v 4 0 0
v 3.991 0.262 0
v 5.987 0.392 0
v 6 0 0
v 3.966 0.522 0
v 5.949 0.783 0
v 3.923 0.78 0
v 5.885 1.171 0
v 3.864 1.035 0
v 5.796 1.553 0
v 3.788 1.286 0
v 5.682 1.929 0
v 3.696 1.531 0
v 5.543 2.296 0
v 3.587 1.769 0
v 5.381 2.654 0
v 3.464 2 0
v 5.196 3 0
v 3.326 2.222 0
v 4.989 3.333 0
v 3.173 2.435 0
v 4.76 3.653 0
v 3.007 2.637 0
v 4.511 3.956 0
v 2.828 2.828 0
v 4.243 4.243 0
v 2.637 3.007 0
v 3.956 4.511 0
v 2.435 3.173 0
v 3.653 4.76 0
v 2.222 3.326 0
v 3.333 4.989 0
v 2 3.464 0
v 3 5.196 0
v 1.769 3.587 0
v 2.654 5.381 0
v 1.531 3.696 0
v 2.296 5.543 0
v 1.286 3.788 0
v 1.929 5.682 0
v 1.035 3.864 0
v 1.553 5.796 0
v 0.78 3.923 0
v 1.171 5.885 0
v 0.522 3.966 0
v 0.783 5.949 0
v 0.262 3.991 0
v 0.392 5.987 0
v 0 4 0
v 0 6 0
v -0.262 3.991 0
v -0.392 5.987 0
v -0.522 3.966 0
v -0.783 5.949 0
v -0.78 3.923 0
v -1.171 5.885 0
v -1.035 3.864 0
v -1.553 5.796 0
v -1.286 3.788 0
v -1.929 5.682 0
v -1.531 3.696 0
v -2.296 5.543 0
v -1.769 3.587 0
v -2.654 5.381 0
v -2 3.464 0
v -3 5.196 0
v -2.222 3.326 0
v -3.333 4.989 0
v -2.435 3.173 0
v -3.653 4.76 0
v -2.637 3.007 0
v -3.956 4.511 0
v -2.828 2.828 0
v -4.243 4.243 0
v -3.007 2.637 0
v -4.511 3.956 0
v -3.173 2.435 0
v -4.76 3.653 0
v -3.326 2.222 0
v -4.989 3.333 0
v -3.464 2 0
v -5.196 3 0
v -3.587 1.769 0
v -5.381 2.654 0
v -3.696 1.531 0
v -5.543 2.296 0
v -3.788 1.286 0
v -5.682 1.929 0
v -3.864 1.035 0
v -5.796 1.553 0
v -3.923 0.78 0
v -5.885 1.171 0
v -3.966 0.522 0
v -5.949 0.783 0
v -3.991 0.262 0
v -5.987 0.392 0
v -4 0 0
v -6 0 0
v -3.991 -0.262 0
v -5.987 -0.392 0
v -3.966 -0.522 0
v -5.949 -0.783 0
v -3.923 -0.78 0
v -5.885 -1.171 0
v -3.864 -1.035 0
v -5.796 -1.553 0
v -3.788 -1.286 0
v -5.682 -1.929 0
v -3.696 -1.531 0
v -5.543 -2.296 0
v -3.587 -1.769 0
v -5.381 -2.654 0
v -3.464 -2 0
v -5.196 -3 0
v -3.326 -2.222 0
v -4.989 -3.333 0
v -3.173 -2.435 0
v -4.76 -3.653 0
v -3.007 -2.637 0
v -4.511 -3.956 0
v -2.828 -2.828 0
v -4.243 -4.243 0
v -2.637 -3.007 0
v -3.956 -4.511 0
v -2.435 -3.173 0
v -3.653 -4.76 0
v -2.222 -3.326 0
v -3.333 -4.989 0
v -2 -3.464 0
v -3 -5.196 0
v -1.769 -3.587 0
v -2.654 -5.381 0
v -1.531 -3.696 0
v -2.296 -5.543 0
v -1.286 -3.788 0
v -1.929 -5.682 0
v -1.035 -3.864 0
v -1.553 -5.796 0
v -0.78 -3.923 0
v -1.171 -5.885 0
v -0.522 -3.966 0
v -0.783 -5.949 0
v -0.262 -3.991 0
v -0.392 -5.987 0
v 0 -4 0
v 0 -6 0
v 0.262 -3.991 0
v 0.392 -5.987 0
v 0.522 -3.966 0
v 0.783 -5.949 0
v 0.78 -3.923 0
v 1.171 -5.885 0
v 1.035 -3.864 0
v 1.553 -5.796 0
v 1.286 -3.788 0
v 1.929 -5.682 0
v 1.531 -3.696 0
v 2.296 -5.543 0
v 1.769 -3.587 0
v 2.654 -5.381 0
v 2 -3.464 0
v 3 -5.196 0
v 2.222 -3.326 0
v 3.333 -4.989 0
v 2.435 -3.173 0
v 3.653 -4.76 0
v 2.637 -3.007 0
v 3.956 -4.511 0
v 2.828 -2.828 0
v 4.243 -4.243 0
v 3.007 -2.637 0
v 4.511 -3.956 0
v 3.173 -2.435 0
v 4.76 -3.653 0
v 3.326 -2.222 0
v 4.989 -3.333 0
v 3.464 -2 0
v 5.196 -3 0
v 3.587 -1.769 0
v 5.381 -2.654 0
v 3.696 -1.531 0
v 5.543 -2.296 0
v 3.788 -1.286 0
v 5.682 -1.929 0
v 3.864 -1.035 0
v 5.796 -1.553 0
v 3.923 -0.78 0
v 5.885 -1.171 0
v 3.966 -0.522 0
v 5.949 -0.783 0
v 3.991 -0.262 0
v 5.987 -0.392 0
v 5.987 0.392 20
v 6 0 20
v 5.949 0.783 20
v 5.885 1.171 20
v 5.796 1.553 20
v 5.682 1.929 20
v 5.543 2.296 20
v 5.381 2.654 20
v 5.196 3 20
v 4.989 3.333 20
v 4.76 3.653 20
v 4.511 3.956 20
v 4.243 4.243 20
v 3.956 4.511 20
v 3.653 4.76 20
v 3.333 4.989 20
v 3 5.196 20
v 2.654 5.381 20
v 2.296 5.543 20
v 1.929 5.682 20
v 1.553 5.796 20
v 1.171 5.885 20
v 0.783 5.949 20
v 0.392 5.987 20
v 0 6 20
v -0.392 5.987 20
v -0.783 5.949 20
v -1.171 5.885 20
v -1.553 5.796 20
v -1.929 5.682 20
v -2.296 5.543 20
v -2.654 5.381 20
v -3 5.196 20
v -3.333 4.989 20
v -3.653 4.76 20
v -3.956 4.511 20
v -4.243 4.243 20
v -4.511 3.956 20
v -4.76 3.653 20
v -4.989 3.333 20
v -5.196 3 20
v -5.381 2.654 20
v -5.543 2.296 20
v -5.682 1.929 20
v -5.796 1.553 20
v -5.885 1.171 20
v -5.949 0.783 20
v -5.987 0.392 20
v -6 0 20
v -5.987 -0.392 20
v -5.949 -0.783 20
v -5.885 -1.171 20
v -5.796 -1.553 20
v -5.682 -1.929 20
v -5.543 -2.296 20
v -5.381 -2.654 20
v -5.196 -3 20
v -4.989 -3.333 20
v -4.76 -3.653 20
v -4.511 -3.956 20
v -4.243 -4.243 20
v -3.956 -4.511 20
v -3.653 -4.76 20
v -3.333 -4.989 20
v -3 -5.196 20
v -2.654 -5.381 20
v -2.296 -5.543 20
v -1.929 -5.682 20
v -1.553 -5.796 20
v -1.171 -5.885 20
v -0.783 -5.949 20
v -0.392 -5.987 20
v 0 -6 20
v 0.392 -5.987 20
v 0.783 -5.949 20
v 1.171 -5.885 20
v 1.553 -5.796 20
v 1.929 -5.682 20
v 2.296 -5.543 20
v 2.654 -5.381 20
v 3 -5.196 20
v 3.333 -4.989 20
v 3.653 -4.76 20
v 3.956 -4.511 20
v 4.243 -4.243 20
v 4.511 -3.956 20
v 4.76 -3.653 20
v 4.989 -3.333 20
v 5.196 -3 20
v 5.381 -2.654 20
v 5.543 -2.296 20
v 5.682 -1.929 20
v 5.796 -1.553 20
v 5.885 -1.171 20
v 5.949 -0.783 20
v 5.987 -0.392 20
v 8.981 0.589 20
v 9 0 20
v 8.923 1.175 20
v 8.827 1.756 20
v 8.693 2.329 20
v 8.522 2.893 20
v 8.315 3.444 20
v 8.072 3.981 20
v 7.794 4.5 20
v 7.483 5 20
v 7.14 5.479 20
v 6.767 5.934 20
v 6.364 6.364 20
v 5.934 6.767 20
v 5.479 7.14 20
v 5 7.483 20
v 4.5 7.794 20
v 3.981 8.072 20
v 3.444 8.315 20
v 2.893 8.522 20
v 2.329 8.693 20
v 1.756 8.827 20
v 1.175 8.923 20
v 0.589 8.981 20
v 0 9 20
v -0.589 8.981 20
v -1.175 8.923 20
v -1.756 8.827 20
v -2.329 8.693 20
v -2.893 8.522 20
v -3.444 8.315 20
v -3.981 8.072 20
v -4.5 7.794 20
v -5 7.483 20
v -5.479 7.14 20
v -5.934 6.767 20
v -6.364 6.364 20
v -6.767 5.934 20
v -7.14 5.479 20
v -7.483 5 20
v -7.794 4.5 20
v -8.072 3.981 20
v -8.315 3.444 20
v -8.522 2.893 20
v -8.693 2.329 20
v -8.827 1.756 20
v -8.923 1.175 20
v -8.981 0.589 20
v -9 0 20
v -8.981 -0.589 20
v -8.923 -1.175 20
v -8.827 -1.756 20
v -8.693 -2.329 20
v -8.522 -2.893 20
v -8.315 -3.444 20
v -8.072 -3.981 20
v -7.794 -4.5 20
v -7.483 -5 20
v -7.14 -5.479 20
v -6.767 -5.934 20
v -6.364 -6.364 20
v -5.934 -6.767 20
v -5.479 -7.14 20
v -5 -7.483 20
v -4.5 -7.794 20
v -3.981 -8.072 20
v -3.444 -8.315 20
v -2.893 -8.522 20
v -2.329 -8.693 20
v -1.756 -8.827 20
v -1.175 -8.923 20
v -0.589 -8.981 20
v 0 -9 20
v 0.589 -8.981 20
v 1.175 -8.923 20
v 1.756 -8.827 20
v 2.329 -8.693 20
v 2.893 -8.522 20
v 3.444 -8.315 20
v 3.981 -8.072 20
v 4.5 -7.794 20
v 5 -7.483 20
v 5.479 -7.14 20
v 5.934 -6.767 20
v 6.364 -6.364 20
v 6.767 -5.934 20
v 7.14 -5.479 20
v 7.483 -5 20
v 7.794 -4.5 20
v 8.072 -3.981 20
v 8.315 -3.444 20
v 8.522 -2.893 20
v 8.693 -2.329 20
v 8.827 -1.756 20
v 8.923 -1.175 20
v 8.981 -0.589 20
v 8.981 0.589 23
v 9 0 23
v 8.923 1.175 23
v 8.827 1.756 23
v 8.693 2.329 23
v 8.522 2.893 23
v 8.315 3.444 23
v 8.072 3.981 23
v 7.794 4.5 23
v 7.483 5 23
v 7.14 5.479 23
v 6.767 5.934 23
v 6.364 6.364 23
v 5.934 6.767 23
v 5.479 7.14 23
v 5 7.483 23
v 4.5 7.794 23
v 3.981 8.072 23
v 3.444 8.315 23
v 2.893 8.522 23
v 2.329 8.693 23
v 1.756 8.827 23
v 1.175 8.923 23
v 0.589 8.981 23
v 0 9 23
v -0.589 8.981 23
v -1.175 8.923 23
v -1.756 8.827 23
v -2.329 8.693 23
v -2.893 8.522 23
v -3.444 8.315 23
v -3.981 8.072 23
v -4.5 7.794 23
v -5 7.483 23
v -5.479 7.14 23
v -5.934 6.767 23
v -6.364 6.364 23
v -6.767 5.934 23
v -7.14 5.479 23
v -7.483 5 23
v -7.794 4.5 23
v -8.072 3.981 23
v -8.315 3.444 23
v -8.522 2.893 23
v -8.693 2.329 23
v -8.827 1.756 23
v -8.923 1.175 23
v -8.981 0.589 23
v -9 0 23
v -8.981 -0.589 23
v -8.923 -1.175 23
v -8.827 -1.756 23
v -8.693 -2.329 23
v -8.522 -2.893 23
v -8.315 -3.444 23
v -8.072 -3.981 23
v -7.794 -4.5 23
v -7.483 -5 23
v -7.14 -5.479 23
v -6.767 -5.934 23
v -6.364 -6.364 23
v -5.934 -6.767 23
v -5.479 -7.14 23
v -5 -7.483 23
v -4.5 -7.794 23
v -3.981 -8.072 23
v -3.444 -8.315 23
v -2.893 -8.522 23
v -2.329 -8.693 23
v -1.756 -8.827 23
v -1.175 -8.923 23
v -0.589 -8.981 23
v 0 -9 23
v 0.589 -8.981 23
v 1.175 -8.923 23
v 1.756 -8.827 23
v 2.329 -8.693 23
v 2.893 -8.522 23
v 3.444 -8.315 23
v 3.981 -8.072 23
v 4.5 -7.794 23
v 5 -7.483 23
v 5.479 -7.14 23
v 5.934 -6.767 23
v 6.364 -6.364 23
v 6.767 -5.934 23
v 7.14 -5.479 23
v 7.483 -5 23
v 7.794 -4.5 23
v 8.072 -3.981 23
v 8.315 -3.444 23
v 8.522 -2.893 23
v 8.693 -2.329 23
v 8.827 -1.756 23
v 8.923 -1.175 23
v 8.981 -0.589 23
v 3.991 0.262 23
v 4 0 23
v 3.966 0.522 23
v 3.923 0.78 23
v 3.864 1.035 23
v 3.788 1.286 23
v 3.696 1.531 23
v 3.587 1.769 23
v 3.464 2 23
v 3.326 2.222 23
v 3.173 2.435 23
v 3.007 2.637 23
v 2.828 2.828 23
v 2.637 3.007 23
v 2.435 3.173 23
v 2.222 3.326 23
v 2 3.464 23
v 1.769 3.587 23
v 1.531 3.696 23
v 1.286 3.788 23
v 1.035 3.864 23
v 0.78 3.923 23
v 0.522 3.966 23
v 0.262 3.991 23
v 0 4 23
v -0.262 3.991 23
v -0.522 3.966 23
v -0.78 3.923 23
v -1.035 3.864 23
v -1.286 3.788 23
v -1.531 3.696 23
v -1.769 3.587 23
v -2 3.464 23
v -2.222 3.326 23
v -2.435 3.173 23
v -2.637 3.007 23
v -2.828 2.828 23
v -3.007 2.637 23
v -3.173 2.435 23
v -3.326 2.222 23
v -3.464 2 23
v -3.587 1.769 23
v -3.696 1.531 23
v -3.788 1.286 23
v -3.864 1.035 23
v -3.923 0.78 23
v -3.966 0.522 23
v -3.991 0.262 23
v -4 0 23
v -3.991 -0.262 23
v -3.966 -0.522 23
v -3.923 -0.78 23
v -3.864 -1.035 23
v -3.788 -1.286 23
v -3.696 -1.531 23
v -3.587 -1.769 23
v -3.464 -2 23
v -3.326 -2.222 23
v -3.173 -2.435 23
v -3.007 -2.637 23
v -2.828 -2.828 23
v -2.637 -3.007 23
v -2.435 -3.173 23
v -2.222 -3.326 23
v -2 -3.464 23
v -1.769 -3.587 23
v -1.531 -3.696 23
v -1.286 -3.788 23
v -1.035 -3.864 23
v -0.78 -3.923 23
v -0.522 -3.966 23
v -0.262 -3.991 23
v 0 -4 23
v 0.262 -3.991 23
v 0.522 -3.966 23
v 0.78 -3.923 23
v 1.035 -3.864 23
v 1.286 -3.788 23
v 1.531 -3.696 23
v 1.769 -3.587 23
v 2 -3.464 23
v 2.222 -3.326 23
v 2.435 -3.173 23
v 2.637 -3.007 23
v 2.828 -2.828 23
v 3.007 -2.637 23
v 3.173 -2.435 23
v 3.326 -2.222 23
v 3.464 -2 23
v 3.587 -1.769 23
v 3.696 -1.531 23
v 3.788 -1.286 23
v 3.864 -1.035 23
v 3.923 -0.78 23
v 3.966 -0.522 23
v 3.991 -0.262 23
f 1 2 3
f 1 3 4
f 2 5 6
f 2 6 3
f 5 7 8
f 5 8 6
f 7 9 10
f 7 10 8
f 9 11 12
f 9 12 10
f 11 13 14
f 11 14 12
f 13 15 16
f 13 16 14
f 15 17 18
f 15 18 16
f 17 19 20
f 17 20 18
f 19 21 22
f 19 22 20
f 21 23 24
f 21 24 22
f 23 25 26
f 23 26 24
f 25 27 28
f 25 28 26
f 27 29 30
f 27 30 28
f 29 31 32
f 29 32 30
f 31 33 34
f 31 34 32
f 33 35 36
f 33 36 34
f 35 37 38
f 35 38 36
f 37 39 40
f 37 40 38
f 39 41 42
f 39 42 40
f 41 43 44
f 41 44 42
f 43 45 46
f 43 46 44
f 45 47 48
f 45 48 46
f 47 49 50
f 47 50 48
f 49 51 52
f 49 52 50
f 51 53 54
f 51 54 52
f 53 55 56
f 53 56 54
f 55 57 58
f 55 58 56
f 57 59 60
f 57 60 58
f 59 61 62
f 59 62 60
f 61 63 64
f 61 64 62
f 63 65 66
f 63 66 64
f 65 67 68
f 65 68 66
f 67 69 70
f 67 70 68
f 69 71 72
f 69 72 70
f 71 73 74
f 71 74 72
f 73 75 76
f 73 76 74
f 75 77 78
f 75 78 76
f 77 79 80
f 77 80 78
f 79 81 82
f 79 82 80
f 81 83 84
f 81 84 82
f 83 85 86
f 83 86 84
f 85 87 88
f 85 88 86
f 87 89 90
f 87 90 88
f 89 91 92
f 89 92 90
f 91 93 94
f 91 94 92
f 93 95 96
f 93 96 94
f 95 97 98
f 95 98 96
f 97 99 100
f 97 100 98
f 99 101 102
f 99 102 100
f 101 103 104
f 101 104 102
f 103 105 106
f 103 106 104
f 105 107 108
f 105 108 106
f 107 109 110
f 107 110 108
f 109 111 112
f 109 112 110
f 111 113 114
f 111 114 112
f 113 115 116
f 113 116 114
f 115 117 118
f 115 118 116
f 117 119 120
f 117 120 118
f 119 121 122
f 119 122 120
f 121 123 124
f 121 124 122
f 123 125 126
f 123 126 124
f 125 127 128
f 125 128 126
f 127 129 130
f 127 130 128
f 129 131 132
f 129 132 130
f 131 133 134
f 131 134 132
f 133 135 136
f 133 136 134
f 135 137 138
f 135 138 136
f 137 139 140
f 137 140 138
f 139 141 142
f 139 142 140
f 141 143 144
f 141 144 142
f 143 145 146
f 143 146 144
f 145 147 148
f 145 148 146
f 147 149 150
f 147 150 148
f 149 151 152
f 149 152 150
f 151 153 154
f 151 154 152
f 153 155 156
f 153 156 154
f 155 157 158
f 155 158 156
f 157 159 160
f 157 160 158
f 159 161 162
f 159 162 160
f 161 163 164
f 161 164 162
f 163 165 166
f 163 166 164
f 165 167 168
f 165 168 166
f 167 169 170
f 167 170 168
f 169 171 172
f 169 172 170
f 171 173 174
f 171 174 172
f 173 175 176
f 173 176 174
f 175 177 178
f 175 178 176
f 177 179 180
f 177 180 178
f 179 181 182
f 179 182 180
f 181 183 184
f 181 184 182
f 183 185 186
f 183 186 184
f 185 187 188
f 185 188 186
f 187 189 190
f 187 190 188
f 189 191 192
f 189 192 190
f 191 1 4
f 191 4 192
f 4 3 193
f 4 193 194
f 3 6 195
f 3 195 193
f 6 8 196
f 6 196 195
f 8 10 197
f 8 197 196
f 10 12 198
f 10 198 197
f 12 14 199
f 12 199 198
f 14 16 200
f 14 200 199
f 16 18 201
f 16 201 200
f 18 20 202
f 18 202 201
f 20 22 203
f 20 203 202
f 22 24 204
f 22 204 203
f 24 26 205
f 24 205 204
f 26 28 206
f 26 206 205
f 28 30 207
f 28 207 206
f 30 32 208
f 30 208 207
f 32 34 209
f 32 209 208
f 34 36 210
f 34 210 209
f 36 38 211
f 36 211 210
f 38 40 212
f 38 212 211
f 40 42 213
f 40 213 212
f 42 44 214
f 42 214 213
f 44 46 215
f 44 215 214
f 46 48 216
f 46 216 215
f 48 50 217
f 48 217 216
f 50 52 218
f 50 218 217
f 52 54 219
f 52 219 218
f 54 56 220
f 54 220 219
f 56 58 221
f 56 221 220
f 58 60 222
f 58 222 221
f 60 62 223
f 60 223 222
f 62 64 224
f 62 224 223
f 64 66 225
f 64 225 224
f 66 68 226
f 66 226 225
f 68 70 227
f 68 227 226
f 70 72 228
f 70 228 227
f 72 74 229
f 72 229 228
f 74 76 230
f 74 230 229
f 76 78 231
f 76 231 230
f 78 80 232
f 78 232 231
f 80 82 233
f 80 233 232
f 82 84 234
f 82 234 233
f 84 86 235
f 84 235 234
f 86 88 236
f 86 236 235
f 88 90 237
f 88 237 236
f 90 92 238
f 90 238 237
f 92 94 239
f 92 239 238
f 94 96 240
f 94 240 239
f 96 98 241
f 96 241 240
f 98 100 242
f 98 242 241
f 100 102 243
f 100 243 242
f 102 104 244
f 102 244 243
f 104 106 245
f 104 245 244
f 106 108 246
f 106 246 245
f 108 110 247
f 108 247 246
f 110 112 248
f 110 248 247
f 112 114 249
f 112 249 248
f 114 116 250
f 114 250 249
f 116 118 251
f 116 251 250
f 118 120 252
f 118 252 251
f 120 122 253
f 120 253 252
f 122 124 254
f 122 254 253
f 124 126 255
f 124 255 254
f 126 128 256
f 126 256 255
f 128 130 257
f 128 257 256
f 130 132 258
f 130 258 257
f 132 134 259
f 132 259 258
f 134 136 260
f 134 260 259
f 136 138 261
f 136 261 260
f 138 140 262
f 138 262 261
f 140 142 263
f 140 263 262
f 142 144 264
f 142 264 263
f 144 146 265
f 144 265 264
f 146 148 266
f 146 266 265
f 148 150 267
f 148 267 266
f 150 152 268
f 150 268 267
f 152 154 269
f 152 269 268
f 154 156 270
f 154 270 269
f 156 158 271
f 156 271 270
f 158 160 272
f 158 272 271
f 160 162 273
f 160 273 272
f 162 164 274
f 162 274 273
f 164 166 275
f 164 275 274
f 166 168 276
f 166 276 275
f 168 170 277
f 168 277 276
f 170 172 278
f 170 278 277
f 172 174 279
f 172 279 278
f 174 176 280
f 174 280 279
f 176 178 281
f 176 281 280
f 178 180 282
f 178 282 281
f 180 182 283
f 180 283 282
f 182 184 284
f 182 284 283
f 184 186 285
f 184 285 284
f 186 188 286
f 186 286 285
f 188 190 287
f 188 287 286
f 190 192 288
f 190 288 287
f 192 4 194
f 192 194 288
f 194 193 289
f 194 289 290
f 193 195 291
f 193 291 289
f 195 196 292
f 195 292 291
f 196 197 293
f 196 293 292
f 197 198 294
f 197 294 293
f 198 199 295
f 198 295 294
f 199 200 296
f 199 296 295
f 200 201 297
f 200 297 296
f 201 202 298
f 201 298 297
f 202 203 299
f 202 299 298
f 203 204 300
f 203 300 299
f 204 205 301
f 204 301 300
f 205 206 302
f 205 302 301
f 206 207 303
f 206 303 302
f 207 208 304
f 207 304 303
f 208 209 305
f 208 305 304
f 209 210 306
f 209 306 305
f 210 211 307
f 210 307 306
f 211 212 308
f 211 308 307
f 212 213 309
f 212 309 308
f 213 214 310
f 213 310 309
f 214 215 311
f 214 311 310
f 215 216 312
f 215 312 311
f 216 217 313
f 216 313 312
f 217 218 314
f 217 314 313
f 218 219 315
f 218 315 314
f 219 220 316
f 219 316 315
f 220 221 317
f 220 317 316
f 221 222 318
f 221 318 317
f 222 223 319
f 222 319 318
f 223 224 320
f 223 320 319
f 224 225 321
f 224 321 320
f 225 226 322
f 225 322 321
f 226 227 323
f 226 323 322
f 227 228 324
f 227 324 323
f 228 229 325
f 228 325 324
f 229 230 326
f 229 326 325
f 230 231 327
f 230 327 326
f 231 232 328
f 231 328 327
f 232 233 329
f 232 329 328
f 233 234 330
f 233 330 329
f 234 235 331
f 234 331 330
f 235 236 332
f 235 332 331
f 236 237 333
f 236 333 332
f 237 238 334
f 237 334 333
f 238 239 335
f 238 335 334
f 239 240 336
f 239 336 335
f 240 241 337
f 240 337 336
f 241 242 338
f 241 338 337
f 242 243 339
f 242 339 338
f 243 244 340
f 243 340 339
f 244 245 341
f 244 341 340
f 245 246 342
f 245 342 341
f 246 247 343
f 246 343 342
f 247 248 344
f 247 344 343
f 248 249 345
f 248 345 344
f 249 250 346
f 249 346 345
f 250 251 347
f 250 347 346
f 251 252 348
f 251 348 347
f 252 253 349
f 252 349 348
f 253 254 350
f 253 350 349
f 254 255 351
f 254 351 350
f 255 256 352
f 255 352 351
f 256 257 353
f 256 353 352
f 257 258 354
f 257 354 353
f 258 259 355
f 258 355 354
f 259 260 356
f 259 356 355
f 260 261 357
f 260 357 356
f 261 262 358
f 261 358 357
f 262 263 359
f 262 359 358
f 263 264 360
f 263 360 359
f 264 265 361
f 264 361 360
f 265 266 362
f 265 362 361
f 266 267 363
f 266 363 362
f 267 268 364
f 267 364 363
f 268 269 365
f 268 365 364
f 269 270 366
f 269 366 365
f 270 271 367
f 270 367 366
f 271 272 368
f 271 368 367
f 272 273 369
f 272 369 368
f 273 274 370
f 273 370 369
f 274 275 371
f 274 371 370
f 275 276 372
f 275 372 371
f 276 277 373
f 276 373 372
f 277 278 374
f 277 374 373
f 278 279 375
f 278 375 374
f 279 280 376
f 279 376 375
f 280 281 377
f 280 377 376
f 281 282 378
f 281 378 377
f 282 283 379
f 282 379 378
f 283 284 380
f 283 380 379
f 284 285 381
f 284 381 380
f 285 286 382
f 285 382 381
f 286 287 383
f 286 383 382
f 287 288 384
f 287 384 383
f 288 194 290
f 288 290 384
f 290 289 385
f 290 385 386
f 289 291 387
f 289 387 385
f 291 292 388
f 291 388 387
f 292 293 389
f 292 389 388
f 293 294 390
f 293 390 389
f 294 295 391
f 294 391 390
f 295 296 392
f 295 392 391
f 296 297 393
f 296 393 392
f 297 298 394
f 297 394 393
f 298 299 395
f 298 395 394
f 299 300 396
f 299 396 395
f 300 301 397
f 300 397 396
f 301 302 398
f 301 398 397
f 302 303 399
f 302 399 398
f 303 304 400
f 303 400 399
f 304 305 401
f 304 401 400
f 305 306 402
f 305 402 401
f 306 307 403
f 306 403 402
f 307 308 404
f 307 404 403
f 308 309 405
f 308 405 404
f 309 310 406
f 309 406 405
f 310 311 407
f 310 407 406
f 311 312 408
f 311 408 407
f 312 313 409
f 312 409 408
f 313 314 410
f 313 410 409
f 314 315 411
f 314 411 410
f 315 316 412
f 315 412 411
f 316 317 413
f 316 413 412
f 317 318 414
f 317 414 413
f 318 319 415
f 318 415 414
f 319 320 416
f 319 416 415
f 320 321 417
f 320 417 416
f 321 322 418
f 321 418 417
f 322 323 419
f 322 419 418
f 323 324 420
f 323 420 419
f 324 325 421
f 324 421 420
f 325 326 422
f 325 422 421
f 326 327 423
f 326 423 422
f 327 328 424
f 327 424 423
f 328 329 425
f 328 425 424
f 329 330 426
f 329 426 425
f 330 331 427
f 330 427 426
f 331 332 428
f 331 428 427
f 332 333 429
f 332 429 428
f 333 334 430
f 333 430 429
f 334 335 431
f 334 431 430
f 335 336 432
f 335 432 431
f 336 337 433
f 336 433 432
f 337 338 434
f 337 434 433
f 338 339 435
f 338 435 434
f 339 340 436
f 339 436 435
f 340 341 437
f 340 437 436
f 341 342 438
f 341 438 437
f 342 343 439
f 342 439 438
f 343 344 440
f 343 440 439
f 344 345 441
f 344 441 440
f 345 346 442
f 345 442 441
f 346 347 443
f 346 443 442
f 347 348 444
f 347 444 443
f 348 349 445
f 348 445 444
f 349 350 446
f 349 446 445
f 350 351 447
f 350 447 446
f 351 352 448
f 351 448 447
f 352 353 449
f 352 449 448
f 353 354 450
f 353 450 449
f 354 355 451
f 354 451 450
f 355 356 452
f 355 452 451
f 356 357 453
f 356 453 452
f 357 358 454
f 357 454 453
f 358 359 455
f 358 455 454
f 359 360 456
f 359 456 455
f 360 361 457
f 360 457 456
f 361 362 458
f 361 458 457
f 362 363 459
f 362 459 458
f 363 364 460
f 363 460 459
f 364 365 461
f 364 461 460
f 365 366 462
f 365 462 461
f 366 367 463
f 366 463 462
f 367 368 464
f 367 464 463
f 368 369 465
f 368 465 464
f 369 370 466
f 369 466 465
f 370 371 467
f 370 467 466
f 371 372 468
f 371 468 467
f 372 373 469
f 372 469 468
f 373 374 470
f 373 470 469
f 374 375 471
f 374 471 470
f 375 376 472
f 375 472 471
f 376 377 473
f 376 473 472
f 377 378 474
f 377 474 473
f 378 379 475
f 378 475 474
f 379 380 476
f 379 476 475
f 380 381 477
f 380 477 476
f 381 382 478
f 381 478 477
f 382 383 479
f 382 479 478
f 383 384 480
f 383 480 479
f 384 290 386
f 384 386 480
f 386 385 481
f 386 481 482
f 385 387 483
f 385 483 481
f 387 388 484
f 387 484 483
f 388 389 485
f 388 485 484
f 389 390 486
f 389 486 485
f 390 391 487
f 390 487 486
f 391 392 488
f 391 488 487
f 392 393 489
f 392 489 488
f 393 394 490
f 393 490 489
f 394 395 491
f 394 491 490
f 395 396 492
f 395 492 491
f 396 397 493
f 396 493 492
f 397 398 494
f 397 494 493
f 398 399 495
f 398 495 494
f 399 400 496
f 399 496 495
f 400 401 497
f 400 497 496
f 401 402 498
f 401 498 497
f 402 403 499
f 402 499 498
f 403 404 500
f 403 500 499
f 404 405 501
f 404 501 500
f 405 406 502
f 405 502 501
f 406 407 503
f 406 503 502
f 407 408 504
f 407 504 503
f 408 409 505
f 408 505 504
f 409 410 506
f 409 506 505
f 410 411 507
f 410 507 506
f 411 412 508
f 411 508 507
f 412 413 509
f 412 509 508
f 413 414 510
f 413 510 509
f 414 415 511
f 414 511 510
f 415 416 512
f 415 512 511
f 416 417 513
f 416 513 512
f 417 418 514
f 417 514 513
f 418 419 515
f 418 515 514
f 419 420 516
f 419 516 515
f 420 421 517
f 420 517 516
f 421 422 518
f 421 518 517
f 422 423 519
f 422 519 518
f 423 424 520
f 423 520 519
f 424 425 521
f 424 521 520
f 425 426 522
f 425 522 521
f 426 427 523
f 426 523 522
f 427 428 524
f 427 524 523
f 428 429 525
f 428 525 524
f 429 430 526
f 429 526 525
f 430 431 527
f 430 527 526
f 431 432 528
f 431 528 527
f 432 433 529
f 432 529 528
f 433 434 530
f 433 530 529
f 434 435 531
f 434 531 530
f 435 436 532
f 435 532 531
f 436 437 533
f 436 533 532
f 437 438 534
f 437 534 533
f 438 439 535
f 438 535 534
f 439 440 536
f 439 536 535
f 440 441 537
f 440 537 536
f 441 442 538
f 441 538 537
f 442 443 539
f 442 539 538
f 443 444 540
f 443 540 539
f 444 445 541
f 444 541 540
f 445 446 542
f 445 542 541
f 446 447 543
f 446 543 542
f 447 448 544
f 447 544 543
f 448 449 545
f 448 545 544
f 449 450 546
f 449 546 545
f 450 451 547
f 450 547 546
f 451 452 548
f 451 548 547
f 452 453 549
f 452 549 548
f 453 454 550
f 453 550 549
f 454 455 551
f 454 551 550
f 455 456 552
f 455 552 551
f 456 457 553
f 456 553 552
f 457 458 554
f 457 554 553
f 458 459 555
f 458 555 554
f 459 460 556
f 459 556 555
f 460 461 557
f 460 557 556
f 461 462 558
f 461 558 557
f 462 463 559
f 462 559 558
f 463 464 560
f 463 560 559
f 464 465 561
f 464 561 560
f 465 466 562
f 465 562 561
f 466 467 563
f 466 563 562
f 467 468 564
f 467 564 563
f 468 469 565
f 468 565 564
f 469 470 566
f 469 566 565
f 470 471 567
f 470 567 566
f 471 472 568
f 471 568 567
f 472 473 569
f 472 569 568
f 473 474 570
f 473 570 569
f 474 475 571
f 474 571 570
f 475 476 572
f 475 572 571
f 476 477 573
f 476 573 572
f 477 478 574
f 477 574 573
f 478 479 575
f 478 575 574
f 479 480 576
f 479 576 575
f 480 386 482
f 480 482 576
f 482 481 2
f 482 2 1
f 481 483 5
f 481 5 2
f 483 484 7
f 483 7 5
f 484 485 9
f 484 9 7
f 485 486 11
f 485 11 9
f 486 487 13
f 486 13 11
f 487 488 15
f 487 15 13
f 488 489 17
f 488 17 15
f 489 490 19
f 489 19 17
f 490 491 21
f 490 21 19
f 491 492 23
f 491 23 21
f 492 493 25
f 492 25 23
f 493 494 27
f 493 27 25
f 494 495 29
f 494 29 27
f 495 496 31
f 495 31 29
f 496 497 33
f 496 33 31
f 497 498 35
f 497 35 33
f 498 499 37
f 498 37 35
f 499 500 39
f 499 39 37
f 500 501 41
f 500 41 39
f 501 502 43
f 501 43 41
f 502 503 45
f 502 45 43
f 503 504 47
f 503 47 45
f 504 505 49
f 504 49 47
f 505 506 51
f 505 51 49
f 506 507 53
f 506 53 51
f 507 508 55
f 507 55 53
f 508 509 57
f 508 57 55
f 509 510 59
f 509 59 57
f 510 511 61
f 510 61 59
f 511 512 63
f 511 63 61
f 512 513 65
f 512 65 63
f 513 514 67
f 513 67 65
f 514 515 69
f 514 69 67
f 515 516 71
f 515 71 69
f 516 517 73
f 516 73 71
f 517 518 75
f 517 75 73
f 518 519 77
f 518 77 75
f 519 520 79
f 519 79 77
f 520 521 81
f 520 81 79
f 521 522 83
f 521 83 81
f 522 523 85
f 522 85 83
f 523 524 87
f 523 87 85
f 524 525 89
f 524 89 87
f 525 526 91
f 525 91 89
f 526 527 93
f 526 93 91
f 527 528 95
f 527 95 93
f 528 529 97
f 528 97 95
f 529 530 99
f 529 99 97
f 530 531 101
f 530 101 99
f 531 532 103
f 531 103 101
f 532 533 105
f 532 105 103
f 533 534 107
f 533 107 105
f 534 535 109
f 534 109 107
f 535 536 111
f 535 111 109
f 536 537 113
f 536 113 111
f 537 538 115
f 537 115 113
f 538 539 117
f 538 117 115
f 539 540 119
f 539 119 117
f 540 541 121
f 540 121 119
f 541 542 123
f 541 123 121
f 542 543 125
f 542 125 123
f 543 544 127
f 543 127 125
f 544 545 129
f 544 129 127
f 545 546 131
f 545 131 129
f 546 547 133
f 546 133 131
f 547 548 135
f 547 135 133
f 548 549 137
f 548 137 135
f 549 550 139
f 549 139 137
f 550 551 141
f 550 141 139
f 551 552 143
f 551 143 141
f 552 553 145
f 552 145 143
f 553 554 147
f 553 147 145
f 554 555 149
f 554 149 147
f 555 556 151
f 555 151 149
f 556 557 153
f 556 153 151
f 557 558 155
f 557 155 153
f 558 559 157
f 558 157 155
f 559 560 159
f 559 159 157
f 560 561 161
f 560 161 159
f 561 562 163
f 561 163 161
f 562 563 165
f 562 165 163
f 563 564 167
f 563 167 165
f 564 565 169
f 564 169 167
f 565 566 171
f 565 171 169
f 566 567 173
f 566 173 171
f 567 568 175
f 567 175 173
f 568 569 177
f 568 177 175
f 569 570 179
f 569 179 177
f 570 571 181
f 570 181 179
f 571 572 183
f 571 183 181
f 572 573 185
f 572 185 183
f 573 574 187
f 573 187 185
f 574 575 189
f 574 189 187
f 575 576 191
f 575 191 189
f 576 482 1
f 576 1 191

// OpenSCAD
// Original MechIntel educational model. CC0-1.0. Units: mm.
// Not a standardized or load-rated component.
$fn=96;
// Section points: [radius, height], mm. Edit to change the profile.
section=[[4, 0], [6, 0], [6, 20], [9, 20], [9, 23], [4, 23]];
rotate_extrude($fn=96) polygon(points=section);
